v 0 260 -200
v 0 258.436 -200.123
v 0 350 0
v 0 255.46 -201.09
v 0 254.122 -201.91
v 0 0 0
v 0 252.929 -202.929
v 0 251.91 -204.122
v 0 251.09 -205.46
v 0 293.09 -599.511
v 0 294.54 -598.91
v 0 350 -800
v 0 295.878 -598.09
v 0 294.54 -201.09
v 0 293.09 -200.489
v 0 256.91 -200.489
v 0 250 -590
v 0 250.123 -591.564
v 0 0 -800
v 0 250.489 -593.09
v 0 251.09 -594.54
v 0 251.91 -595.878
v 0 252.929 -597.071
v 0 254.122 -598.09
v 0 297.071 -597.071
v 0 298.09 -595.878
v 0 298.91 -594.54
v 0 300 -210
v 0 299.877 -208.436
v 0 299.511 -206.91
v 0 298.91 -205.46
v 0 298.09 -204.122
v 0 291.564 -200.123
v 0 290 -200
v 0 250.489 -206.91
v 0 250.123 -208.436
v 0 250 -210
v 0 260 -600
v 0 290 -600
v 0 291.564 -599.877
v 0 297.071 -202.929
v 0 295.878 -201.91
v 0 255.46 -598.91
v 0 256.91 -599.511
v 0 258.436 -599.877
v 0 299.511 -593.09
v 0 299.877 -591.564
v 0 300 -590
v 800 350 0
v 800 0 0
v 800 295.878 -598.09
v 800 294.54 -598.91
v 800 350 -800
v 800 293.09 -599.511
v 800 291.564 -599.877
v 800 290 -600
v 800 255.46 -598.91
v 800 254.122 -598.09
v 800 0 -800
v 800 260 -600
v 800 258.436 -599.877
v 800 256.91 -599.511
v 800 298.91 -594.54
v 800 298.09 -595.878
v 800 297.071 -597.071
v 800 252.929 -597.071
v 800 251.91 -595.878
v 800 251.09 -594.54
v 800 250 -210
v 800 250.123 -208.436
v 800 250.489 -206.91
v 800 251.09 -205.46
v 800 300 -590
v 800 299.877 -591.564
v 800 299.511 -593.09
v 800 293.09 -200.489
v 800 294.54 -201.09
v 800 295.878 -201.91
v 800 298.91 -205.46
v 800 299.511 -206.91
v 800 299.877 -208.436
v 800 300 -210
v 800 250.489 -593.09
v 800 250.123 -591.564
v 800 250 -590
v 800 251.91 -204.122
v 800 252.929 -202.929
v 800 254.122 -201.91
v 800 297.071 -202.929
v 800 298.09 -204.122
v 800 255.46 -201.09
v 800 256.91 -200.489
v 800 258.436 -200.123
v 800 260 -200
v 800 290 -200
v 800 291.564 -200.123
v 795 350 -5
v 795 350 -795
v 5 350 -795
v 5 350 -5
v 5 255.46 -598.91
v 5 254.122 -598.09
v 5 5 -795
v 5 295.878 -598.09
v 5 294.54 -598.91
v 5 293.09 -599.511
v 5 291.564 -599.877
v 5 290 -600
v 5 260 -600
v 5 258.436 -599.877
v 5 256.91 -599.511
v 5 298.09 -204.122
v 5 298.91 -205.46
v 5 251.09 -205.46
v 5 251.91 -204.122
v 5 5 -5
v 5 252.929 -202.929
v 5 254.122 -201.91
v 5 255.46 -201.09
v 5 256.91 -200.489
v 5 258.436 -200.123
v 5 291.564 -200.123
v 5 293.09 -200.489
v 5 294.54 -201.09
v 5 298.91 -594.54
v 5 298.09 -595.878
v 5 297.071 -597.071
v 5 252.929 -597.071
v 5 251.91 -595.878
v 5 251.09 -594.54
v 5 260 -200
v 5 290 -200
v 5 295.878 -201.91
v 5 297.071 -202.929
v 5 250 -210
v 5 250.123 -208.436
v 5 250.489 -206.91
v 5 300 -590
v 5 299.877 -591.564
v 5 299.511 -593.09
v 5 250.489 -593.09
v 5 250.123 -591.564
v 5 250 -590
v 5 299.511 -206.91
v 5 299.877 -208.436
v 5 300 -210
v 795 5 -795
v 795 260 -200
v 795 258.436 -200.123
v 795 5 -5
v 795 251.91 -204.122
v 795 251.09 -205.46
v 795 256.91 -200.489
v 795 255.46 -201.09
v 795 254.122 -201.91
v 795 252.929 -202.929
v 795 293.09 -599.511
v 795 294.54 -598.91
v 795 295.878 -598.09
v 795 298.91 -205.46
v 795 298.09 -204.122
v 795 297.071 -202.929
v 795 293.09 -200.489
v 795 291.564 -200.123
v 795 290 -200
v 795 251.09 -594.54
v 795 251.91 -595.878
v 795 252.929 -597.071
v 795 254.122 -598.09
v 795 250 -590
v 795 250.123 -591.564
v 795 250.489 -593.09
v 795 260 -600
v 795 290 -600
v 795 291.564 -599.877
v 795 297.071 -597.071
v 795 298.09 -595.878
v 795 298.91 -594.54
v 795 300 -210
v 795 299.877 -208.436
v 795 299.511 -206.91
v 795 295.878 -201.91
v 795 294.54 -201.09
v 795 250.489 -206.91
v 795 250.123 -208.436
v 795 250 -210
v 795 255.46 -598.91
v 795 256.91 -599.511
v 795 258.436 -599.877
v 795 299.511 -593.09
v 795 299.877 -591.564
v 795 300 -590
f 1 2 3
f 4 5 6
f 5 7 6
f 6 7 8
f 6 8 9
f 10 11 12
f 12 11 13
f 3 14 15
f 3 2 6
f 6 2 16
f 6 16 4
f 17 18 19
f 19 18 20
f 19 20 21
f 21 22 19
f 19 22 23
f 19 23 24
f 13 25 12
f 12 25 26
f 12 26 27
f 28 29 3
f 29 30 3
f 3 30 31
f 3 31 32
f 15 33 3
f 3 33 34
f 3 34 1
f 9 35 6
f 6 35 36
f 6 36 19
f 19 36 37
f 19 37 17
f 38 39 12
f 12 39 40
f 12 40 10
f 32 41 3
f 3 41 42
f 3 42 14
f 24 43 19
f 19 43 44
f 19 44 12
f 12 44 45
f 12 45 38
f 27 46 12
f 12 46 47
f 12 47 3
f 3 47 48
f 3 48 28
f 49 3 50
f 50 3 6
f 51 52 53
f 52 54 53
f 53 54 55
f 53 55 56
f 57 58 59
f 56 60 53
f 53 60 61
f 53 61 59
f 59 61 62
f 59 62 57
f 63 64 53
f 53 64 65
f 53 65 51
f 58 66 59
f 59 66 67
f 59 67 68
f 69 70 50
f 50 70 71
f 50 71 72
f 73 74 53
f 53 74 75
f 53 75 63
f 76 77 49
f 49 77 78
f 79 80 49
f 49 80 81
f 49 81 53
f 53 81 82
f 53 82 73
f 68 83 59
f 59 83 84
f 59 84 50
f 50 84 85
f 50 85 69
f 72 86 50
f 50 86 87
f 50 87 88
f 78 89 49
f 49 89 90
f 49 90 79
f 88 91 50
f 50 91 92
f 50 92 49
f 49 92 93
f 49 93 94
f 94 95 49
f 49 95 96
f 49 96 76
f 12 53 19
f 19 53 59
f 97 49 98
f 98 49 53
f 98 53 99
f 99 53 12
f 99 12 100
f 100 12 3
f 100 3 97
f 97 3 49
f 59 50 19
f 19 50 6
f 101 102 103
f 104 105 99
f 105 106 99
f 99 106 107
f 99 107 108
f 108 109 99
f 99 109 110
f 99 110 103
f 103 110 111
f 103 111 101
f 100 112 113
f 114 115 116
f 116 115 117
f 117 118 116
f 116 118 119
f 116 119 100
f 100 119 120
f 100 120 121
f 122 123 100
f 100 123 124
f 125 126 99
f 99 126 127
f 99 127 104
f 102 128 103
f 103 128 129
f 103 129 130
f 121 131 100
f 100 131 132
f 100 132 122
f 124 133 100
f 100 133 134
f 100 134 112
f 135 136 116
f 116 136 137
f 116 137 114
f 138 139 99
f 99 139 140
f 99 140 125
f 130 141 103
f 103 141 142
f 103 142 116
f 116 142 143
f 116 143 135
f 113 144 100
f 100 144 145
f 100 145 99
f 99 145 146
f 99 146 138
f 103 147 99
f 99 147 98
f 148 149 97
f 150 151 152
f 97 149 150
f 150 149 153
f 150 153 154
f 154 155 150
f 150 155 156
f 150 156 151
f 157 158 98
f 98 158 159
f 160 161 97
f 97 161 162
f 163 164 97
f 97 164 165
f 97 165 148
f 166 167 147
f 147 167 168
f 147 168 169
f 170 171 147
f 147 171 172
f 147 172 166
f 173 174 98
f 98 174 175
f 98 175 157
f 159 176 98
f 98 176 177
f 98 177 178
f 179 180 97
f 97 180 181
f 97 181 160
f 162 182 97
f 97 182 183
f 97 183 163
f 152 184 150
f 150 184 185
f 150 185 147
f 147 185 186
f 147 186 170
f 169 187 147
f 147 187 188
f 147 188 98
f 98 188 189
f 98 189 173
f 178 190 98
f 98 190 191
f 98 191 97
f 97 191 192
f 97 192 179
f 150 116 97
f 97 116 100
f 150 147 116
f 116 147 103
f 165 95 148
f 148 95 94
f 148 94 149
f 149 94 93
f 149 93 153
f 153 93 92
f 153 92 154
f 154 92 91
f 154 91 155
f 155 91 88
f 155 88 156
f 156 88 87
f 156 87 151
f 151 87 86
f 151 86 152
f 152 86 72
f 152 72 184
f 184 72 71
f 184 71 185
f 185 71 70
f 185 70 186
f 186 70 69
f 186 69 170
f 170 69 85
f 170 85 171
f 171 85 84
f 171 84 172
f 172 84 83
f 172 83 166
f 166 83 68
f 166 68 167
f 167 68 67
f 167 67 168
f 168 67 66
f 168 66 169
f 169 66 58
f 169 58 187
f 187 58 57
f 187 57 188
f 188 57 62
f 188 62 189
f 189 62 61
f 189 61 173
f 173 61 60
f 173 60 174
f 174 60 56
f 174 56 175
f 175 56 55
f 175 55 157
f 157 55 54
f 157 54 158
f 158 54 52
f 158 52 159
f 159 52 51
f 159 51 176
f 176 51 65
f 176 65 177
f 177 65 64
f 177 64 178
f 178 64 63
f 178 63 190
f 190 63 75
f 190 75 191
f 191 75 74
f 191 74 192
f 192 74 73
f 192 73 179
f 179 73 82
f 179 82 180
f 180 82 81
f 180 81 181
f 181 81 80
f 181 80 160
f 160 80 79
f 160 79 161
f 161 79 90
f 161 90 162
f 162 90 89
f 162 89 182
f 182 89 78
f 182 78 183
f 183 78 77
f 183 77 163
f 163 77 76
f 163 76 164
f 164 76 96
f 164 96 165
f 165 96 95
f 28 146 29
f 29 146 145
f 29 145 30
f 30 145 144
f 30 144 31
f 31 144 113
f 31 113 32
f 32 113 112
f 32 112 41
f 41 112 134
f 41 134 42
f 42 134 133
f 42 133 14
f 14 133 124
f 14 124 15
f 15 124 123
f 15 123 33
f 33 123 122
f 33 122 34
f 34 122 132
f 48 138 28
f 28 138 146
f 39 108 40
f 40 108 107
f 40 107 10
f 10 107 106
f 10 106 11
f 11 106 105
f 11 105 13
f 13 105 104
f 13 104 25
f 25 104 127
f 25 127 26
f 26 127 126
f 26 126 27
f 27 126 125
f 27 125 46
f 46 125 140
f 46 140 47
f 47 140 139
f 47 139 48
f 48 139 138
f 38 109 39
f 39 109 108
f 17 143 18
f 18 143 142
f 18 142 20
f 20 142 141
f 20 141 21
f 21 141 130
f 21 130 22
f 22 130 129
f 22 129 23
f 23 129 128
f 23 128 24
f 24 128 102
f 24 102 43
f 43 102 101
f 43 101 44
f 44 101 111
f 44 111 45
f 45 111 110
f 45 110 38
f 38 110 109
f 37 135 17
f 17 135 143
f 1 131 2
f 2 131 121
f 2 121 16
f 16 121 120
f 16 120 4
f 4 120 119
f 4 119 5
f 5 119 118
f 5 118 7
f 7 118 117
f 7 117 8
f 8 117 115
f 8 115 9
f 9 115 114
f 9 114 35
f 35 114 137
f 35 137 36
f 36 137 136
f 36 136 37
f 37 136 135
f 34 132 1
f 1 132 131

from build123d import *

# Parameters (mm, degrees)
SKIZZE1_W                            = 800
SKIZZE1_H                            = 800
AUFSATZ_LINEAR_AUSTRAGEN1_DEPTH      = 350
SKIZZE2_W                            = 790
SKIZZE2_H                            = 790
SCHNITT_LINEAR_AUSTRAGEN1_DEPTH      = 345
SCHNITT_LINEAR_AUSTRAGEN2_DEPTH      = 1185.271928233
SCHNITT_LINEAR_AUSTRAGEN2_DEPTH_BACK = 1185.271928233


with BuildPart() as part:
    # Skizze1 → Aufsatz-Linear austragen1 (new body)
    with BuildSketch(Plane(origin=(0, 0, 0), x_dir=(1, 0, 0), z_dir=(0, 1, 0))):
        with Locations((400, 400)):
            Rectangle(SKIZZE1_W, SKIZZE1_H)
    extrude(amount=AUFSATZ_LINEAR_AUSTRAGEN1_DEPTH)

    # Skizze2 → Schnitt-Linear austragen1 (cut)
    with BuildSketch(Plane(origin=(0, 350, 0), x_dir=(1, 0, 0), z_dir=(0, 1, 0))):
        with Locations((400, 400)):
            Rectangle(SKIZZE2_W, SKIZZE2_H)
    extrude(amount=-SCHNITT_LINEAR_AUSTRAGEN1_DEPTH, mode=Mode.SUBTRACT)

    # Skizze3 → Schnitt-Linear austragen2 (cut, two sides: drawn at the far end of the back side and taken through both)
    with BuildSketch(Plane(origin=(800, 0, 0), x_dir=(0, 0, -1), z_dir=(1, 0, 0)).offset(-SCHNITT_LINEAR_AUSTRAGEN2_DEPTH_BACK)):
        with BuildLine():
            Line((210, 300), (590, 300))
            ThreePointArc((590, 300), (597.071067812, 297.071067812), (600, 290))
            Line((600, 290), (600, 260))
            ThreePointArc((600, 260), (597.071067812, 252.928932188), (590, 250))
            Line((590, 250), (210, 250))
            ThreePointArc((210, 250), (202.928932188, 252.928932188), (200, 260))
            Line((200, 260), (200, 290))
            ThreePointArc((200, 290), (202.928932188, 297.071067812), (210, 300))
        make_face()
    extrude(amount=SCHNITT_LINEAR_AUSTRAGEN2_DEPTH + SCHNITT_LINEAR_AUSTRAGEN2_DEPTH_BACK, mode=Mode.SUBTRACT)


solid = part.part
